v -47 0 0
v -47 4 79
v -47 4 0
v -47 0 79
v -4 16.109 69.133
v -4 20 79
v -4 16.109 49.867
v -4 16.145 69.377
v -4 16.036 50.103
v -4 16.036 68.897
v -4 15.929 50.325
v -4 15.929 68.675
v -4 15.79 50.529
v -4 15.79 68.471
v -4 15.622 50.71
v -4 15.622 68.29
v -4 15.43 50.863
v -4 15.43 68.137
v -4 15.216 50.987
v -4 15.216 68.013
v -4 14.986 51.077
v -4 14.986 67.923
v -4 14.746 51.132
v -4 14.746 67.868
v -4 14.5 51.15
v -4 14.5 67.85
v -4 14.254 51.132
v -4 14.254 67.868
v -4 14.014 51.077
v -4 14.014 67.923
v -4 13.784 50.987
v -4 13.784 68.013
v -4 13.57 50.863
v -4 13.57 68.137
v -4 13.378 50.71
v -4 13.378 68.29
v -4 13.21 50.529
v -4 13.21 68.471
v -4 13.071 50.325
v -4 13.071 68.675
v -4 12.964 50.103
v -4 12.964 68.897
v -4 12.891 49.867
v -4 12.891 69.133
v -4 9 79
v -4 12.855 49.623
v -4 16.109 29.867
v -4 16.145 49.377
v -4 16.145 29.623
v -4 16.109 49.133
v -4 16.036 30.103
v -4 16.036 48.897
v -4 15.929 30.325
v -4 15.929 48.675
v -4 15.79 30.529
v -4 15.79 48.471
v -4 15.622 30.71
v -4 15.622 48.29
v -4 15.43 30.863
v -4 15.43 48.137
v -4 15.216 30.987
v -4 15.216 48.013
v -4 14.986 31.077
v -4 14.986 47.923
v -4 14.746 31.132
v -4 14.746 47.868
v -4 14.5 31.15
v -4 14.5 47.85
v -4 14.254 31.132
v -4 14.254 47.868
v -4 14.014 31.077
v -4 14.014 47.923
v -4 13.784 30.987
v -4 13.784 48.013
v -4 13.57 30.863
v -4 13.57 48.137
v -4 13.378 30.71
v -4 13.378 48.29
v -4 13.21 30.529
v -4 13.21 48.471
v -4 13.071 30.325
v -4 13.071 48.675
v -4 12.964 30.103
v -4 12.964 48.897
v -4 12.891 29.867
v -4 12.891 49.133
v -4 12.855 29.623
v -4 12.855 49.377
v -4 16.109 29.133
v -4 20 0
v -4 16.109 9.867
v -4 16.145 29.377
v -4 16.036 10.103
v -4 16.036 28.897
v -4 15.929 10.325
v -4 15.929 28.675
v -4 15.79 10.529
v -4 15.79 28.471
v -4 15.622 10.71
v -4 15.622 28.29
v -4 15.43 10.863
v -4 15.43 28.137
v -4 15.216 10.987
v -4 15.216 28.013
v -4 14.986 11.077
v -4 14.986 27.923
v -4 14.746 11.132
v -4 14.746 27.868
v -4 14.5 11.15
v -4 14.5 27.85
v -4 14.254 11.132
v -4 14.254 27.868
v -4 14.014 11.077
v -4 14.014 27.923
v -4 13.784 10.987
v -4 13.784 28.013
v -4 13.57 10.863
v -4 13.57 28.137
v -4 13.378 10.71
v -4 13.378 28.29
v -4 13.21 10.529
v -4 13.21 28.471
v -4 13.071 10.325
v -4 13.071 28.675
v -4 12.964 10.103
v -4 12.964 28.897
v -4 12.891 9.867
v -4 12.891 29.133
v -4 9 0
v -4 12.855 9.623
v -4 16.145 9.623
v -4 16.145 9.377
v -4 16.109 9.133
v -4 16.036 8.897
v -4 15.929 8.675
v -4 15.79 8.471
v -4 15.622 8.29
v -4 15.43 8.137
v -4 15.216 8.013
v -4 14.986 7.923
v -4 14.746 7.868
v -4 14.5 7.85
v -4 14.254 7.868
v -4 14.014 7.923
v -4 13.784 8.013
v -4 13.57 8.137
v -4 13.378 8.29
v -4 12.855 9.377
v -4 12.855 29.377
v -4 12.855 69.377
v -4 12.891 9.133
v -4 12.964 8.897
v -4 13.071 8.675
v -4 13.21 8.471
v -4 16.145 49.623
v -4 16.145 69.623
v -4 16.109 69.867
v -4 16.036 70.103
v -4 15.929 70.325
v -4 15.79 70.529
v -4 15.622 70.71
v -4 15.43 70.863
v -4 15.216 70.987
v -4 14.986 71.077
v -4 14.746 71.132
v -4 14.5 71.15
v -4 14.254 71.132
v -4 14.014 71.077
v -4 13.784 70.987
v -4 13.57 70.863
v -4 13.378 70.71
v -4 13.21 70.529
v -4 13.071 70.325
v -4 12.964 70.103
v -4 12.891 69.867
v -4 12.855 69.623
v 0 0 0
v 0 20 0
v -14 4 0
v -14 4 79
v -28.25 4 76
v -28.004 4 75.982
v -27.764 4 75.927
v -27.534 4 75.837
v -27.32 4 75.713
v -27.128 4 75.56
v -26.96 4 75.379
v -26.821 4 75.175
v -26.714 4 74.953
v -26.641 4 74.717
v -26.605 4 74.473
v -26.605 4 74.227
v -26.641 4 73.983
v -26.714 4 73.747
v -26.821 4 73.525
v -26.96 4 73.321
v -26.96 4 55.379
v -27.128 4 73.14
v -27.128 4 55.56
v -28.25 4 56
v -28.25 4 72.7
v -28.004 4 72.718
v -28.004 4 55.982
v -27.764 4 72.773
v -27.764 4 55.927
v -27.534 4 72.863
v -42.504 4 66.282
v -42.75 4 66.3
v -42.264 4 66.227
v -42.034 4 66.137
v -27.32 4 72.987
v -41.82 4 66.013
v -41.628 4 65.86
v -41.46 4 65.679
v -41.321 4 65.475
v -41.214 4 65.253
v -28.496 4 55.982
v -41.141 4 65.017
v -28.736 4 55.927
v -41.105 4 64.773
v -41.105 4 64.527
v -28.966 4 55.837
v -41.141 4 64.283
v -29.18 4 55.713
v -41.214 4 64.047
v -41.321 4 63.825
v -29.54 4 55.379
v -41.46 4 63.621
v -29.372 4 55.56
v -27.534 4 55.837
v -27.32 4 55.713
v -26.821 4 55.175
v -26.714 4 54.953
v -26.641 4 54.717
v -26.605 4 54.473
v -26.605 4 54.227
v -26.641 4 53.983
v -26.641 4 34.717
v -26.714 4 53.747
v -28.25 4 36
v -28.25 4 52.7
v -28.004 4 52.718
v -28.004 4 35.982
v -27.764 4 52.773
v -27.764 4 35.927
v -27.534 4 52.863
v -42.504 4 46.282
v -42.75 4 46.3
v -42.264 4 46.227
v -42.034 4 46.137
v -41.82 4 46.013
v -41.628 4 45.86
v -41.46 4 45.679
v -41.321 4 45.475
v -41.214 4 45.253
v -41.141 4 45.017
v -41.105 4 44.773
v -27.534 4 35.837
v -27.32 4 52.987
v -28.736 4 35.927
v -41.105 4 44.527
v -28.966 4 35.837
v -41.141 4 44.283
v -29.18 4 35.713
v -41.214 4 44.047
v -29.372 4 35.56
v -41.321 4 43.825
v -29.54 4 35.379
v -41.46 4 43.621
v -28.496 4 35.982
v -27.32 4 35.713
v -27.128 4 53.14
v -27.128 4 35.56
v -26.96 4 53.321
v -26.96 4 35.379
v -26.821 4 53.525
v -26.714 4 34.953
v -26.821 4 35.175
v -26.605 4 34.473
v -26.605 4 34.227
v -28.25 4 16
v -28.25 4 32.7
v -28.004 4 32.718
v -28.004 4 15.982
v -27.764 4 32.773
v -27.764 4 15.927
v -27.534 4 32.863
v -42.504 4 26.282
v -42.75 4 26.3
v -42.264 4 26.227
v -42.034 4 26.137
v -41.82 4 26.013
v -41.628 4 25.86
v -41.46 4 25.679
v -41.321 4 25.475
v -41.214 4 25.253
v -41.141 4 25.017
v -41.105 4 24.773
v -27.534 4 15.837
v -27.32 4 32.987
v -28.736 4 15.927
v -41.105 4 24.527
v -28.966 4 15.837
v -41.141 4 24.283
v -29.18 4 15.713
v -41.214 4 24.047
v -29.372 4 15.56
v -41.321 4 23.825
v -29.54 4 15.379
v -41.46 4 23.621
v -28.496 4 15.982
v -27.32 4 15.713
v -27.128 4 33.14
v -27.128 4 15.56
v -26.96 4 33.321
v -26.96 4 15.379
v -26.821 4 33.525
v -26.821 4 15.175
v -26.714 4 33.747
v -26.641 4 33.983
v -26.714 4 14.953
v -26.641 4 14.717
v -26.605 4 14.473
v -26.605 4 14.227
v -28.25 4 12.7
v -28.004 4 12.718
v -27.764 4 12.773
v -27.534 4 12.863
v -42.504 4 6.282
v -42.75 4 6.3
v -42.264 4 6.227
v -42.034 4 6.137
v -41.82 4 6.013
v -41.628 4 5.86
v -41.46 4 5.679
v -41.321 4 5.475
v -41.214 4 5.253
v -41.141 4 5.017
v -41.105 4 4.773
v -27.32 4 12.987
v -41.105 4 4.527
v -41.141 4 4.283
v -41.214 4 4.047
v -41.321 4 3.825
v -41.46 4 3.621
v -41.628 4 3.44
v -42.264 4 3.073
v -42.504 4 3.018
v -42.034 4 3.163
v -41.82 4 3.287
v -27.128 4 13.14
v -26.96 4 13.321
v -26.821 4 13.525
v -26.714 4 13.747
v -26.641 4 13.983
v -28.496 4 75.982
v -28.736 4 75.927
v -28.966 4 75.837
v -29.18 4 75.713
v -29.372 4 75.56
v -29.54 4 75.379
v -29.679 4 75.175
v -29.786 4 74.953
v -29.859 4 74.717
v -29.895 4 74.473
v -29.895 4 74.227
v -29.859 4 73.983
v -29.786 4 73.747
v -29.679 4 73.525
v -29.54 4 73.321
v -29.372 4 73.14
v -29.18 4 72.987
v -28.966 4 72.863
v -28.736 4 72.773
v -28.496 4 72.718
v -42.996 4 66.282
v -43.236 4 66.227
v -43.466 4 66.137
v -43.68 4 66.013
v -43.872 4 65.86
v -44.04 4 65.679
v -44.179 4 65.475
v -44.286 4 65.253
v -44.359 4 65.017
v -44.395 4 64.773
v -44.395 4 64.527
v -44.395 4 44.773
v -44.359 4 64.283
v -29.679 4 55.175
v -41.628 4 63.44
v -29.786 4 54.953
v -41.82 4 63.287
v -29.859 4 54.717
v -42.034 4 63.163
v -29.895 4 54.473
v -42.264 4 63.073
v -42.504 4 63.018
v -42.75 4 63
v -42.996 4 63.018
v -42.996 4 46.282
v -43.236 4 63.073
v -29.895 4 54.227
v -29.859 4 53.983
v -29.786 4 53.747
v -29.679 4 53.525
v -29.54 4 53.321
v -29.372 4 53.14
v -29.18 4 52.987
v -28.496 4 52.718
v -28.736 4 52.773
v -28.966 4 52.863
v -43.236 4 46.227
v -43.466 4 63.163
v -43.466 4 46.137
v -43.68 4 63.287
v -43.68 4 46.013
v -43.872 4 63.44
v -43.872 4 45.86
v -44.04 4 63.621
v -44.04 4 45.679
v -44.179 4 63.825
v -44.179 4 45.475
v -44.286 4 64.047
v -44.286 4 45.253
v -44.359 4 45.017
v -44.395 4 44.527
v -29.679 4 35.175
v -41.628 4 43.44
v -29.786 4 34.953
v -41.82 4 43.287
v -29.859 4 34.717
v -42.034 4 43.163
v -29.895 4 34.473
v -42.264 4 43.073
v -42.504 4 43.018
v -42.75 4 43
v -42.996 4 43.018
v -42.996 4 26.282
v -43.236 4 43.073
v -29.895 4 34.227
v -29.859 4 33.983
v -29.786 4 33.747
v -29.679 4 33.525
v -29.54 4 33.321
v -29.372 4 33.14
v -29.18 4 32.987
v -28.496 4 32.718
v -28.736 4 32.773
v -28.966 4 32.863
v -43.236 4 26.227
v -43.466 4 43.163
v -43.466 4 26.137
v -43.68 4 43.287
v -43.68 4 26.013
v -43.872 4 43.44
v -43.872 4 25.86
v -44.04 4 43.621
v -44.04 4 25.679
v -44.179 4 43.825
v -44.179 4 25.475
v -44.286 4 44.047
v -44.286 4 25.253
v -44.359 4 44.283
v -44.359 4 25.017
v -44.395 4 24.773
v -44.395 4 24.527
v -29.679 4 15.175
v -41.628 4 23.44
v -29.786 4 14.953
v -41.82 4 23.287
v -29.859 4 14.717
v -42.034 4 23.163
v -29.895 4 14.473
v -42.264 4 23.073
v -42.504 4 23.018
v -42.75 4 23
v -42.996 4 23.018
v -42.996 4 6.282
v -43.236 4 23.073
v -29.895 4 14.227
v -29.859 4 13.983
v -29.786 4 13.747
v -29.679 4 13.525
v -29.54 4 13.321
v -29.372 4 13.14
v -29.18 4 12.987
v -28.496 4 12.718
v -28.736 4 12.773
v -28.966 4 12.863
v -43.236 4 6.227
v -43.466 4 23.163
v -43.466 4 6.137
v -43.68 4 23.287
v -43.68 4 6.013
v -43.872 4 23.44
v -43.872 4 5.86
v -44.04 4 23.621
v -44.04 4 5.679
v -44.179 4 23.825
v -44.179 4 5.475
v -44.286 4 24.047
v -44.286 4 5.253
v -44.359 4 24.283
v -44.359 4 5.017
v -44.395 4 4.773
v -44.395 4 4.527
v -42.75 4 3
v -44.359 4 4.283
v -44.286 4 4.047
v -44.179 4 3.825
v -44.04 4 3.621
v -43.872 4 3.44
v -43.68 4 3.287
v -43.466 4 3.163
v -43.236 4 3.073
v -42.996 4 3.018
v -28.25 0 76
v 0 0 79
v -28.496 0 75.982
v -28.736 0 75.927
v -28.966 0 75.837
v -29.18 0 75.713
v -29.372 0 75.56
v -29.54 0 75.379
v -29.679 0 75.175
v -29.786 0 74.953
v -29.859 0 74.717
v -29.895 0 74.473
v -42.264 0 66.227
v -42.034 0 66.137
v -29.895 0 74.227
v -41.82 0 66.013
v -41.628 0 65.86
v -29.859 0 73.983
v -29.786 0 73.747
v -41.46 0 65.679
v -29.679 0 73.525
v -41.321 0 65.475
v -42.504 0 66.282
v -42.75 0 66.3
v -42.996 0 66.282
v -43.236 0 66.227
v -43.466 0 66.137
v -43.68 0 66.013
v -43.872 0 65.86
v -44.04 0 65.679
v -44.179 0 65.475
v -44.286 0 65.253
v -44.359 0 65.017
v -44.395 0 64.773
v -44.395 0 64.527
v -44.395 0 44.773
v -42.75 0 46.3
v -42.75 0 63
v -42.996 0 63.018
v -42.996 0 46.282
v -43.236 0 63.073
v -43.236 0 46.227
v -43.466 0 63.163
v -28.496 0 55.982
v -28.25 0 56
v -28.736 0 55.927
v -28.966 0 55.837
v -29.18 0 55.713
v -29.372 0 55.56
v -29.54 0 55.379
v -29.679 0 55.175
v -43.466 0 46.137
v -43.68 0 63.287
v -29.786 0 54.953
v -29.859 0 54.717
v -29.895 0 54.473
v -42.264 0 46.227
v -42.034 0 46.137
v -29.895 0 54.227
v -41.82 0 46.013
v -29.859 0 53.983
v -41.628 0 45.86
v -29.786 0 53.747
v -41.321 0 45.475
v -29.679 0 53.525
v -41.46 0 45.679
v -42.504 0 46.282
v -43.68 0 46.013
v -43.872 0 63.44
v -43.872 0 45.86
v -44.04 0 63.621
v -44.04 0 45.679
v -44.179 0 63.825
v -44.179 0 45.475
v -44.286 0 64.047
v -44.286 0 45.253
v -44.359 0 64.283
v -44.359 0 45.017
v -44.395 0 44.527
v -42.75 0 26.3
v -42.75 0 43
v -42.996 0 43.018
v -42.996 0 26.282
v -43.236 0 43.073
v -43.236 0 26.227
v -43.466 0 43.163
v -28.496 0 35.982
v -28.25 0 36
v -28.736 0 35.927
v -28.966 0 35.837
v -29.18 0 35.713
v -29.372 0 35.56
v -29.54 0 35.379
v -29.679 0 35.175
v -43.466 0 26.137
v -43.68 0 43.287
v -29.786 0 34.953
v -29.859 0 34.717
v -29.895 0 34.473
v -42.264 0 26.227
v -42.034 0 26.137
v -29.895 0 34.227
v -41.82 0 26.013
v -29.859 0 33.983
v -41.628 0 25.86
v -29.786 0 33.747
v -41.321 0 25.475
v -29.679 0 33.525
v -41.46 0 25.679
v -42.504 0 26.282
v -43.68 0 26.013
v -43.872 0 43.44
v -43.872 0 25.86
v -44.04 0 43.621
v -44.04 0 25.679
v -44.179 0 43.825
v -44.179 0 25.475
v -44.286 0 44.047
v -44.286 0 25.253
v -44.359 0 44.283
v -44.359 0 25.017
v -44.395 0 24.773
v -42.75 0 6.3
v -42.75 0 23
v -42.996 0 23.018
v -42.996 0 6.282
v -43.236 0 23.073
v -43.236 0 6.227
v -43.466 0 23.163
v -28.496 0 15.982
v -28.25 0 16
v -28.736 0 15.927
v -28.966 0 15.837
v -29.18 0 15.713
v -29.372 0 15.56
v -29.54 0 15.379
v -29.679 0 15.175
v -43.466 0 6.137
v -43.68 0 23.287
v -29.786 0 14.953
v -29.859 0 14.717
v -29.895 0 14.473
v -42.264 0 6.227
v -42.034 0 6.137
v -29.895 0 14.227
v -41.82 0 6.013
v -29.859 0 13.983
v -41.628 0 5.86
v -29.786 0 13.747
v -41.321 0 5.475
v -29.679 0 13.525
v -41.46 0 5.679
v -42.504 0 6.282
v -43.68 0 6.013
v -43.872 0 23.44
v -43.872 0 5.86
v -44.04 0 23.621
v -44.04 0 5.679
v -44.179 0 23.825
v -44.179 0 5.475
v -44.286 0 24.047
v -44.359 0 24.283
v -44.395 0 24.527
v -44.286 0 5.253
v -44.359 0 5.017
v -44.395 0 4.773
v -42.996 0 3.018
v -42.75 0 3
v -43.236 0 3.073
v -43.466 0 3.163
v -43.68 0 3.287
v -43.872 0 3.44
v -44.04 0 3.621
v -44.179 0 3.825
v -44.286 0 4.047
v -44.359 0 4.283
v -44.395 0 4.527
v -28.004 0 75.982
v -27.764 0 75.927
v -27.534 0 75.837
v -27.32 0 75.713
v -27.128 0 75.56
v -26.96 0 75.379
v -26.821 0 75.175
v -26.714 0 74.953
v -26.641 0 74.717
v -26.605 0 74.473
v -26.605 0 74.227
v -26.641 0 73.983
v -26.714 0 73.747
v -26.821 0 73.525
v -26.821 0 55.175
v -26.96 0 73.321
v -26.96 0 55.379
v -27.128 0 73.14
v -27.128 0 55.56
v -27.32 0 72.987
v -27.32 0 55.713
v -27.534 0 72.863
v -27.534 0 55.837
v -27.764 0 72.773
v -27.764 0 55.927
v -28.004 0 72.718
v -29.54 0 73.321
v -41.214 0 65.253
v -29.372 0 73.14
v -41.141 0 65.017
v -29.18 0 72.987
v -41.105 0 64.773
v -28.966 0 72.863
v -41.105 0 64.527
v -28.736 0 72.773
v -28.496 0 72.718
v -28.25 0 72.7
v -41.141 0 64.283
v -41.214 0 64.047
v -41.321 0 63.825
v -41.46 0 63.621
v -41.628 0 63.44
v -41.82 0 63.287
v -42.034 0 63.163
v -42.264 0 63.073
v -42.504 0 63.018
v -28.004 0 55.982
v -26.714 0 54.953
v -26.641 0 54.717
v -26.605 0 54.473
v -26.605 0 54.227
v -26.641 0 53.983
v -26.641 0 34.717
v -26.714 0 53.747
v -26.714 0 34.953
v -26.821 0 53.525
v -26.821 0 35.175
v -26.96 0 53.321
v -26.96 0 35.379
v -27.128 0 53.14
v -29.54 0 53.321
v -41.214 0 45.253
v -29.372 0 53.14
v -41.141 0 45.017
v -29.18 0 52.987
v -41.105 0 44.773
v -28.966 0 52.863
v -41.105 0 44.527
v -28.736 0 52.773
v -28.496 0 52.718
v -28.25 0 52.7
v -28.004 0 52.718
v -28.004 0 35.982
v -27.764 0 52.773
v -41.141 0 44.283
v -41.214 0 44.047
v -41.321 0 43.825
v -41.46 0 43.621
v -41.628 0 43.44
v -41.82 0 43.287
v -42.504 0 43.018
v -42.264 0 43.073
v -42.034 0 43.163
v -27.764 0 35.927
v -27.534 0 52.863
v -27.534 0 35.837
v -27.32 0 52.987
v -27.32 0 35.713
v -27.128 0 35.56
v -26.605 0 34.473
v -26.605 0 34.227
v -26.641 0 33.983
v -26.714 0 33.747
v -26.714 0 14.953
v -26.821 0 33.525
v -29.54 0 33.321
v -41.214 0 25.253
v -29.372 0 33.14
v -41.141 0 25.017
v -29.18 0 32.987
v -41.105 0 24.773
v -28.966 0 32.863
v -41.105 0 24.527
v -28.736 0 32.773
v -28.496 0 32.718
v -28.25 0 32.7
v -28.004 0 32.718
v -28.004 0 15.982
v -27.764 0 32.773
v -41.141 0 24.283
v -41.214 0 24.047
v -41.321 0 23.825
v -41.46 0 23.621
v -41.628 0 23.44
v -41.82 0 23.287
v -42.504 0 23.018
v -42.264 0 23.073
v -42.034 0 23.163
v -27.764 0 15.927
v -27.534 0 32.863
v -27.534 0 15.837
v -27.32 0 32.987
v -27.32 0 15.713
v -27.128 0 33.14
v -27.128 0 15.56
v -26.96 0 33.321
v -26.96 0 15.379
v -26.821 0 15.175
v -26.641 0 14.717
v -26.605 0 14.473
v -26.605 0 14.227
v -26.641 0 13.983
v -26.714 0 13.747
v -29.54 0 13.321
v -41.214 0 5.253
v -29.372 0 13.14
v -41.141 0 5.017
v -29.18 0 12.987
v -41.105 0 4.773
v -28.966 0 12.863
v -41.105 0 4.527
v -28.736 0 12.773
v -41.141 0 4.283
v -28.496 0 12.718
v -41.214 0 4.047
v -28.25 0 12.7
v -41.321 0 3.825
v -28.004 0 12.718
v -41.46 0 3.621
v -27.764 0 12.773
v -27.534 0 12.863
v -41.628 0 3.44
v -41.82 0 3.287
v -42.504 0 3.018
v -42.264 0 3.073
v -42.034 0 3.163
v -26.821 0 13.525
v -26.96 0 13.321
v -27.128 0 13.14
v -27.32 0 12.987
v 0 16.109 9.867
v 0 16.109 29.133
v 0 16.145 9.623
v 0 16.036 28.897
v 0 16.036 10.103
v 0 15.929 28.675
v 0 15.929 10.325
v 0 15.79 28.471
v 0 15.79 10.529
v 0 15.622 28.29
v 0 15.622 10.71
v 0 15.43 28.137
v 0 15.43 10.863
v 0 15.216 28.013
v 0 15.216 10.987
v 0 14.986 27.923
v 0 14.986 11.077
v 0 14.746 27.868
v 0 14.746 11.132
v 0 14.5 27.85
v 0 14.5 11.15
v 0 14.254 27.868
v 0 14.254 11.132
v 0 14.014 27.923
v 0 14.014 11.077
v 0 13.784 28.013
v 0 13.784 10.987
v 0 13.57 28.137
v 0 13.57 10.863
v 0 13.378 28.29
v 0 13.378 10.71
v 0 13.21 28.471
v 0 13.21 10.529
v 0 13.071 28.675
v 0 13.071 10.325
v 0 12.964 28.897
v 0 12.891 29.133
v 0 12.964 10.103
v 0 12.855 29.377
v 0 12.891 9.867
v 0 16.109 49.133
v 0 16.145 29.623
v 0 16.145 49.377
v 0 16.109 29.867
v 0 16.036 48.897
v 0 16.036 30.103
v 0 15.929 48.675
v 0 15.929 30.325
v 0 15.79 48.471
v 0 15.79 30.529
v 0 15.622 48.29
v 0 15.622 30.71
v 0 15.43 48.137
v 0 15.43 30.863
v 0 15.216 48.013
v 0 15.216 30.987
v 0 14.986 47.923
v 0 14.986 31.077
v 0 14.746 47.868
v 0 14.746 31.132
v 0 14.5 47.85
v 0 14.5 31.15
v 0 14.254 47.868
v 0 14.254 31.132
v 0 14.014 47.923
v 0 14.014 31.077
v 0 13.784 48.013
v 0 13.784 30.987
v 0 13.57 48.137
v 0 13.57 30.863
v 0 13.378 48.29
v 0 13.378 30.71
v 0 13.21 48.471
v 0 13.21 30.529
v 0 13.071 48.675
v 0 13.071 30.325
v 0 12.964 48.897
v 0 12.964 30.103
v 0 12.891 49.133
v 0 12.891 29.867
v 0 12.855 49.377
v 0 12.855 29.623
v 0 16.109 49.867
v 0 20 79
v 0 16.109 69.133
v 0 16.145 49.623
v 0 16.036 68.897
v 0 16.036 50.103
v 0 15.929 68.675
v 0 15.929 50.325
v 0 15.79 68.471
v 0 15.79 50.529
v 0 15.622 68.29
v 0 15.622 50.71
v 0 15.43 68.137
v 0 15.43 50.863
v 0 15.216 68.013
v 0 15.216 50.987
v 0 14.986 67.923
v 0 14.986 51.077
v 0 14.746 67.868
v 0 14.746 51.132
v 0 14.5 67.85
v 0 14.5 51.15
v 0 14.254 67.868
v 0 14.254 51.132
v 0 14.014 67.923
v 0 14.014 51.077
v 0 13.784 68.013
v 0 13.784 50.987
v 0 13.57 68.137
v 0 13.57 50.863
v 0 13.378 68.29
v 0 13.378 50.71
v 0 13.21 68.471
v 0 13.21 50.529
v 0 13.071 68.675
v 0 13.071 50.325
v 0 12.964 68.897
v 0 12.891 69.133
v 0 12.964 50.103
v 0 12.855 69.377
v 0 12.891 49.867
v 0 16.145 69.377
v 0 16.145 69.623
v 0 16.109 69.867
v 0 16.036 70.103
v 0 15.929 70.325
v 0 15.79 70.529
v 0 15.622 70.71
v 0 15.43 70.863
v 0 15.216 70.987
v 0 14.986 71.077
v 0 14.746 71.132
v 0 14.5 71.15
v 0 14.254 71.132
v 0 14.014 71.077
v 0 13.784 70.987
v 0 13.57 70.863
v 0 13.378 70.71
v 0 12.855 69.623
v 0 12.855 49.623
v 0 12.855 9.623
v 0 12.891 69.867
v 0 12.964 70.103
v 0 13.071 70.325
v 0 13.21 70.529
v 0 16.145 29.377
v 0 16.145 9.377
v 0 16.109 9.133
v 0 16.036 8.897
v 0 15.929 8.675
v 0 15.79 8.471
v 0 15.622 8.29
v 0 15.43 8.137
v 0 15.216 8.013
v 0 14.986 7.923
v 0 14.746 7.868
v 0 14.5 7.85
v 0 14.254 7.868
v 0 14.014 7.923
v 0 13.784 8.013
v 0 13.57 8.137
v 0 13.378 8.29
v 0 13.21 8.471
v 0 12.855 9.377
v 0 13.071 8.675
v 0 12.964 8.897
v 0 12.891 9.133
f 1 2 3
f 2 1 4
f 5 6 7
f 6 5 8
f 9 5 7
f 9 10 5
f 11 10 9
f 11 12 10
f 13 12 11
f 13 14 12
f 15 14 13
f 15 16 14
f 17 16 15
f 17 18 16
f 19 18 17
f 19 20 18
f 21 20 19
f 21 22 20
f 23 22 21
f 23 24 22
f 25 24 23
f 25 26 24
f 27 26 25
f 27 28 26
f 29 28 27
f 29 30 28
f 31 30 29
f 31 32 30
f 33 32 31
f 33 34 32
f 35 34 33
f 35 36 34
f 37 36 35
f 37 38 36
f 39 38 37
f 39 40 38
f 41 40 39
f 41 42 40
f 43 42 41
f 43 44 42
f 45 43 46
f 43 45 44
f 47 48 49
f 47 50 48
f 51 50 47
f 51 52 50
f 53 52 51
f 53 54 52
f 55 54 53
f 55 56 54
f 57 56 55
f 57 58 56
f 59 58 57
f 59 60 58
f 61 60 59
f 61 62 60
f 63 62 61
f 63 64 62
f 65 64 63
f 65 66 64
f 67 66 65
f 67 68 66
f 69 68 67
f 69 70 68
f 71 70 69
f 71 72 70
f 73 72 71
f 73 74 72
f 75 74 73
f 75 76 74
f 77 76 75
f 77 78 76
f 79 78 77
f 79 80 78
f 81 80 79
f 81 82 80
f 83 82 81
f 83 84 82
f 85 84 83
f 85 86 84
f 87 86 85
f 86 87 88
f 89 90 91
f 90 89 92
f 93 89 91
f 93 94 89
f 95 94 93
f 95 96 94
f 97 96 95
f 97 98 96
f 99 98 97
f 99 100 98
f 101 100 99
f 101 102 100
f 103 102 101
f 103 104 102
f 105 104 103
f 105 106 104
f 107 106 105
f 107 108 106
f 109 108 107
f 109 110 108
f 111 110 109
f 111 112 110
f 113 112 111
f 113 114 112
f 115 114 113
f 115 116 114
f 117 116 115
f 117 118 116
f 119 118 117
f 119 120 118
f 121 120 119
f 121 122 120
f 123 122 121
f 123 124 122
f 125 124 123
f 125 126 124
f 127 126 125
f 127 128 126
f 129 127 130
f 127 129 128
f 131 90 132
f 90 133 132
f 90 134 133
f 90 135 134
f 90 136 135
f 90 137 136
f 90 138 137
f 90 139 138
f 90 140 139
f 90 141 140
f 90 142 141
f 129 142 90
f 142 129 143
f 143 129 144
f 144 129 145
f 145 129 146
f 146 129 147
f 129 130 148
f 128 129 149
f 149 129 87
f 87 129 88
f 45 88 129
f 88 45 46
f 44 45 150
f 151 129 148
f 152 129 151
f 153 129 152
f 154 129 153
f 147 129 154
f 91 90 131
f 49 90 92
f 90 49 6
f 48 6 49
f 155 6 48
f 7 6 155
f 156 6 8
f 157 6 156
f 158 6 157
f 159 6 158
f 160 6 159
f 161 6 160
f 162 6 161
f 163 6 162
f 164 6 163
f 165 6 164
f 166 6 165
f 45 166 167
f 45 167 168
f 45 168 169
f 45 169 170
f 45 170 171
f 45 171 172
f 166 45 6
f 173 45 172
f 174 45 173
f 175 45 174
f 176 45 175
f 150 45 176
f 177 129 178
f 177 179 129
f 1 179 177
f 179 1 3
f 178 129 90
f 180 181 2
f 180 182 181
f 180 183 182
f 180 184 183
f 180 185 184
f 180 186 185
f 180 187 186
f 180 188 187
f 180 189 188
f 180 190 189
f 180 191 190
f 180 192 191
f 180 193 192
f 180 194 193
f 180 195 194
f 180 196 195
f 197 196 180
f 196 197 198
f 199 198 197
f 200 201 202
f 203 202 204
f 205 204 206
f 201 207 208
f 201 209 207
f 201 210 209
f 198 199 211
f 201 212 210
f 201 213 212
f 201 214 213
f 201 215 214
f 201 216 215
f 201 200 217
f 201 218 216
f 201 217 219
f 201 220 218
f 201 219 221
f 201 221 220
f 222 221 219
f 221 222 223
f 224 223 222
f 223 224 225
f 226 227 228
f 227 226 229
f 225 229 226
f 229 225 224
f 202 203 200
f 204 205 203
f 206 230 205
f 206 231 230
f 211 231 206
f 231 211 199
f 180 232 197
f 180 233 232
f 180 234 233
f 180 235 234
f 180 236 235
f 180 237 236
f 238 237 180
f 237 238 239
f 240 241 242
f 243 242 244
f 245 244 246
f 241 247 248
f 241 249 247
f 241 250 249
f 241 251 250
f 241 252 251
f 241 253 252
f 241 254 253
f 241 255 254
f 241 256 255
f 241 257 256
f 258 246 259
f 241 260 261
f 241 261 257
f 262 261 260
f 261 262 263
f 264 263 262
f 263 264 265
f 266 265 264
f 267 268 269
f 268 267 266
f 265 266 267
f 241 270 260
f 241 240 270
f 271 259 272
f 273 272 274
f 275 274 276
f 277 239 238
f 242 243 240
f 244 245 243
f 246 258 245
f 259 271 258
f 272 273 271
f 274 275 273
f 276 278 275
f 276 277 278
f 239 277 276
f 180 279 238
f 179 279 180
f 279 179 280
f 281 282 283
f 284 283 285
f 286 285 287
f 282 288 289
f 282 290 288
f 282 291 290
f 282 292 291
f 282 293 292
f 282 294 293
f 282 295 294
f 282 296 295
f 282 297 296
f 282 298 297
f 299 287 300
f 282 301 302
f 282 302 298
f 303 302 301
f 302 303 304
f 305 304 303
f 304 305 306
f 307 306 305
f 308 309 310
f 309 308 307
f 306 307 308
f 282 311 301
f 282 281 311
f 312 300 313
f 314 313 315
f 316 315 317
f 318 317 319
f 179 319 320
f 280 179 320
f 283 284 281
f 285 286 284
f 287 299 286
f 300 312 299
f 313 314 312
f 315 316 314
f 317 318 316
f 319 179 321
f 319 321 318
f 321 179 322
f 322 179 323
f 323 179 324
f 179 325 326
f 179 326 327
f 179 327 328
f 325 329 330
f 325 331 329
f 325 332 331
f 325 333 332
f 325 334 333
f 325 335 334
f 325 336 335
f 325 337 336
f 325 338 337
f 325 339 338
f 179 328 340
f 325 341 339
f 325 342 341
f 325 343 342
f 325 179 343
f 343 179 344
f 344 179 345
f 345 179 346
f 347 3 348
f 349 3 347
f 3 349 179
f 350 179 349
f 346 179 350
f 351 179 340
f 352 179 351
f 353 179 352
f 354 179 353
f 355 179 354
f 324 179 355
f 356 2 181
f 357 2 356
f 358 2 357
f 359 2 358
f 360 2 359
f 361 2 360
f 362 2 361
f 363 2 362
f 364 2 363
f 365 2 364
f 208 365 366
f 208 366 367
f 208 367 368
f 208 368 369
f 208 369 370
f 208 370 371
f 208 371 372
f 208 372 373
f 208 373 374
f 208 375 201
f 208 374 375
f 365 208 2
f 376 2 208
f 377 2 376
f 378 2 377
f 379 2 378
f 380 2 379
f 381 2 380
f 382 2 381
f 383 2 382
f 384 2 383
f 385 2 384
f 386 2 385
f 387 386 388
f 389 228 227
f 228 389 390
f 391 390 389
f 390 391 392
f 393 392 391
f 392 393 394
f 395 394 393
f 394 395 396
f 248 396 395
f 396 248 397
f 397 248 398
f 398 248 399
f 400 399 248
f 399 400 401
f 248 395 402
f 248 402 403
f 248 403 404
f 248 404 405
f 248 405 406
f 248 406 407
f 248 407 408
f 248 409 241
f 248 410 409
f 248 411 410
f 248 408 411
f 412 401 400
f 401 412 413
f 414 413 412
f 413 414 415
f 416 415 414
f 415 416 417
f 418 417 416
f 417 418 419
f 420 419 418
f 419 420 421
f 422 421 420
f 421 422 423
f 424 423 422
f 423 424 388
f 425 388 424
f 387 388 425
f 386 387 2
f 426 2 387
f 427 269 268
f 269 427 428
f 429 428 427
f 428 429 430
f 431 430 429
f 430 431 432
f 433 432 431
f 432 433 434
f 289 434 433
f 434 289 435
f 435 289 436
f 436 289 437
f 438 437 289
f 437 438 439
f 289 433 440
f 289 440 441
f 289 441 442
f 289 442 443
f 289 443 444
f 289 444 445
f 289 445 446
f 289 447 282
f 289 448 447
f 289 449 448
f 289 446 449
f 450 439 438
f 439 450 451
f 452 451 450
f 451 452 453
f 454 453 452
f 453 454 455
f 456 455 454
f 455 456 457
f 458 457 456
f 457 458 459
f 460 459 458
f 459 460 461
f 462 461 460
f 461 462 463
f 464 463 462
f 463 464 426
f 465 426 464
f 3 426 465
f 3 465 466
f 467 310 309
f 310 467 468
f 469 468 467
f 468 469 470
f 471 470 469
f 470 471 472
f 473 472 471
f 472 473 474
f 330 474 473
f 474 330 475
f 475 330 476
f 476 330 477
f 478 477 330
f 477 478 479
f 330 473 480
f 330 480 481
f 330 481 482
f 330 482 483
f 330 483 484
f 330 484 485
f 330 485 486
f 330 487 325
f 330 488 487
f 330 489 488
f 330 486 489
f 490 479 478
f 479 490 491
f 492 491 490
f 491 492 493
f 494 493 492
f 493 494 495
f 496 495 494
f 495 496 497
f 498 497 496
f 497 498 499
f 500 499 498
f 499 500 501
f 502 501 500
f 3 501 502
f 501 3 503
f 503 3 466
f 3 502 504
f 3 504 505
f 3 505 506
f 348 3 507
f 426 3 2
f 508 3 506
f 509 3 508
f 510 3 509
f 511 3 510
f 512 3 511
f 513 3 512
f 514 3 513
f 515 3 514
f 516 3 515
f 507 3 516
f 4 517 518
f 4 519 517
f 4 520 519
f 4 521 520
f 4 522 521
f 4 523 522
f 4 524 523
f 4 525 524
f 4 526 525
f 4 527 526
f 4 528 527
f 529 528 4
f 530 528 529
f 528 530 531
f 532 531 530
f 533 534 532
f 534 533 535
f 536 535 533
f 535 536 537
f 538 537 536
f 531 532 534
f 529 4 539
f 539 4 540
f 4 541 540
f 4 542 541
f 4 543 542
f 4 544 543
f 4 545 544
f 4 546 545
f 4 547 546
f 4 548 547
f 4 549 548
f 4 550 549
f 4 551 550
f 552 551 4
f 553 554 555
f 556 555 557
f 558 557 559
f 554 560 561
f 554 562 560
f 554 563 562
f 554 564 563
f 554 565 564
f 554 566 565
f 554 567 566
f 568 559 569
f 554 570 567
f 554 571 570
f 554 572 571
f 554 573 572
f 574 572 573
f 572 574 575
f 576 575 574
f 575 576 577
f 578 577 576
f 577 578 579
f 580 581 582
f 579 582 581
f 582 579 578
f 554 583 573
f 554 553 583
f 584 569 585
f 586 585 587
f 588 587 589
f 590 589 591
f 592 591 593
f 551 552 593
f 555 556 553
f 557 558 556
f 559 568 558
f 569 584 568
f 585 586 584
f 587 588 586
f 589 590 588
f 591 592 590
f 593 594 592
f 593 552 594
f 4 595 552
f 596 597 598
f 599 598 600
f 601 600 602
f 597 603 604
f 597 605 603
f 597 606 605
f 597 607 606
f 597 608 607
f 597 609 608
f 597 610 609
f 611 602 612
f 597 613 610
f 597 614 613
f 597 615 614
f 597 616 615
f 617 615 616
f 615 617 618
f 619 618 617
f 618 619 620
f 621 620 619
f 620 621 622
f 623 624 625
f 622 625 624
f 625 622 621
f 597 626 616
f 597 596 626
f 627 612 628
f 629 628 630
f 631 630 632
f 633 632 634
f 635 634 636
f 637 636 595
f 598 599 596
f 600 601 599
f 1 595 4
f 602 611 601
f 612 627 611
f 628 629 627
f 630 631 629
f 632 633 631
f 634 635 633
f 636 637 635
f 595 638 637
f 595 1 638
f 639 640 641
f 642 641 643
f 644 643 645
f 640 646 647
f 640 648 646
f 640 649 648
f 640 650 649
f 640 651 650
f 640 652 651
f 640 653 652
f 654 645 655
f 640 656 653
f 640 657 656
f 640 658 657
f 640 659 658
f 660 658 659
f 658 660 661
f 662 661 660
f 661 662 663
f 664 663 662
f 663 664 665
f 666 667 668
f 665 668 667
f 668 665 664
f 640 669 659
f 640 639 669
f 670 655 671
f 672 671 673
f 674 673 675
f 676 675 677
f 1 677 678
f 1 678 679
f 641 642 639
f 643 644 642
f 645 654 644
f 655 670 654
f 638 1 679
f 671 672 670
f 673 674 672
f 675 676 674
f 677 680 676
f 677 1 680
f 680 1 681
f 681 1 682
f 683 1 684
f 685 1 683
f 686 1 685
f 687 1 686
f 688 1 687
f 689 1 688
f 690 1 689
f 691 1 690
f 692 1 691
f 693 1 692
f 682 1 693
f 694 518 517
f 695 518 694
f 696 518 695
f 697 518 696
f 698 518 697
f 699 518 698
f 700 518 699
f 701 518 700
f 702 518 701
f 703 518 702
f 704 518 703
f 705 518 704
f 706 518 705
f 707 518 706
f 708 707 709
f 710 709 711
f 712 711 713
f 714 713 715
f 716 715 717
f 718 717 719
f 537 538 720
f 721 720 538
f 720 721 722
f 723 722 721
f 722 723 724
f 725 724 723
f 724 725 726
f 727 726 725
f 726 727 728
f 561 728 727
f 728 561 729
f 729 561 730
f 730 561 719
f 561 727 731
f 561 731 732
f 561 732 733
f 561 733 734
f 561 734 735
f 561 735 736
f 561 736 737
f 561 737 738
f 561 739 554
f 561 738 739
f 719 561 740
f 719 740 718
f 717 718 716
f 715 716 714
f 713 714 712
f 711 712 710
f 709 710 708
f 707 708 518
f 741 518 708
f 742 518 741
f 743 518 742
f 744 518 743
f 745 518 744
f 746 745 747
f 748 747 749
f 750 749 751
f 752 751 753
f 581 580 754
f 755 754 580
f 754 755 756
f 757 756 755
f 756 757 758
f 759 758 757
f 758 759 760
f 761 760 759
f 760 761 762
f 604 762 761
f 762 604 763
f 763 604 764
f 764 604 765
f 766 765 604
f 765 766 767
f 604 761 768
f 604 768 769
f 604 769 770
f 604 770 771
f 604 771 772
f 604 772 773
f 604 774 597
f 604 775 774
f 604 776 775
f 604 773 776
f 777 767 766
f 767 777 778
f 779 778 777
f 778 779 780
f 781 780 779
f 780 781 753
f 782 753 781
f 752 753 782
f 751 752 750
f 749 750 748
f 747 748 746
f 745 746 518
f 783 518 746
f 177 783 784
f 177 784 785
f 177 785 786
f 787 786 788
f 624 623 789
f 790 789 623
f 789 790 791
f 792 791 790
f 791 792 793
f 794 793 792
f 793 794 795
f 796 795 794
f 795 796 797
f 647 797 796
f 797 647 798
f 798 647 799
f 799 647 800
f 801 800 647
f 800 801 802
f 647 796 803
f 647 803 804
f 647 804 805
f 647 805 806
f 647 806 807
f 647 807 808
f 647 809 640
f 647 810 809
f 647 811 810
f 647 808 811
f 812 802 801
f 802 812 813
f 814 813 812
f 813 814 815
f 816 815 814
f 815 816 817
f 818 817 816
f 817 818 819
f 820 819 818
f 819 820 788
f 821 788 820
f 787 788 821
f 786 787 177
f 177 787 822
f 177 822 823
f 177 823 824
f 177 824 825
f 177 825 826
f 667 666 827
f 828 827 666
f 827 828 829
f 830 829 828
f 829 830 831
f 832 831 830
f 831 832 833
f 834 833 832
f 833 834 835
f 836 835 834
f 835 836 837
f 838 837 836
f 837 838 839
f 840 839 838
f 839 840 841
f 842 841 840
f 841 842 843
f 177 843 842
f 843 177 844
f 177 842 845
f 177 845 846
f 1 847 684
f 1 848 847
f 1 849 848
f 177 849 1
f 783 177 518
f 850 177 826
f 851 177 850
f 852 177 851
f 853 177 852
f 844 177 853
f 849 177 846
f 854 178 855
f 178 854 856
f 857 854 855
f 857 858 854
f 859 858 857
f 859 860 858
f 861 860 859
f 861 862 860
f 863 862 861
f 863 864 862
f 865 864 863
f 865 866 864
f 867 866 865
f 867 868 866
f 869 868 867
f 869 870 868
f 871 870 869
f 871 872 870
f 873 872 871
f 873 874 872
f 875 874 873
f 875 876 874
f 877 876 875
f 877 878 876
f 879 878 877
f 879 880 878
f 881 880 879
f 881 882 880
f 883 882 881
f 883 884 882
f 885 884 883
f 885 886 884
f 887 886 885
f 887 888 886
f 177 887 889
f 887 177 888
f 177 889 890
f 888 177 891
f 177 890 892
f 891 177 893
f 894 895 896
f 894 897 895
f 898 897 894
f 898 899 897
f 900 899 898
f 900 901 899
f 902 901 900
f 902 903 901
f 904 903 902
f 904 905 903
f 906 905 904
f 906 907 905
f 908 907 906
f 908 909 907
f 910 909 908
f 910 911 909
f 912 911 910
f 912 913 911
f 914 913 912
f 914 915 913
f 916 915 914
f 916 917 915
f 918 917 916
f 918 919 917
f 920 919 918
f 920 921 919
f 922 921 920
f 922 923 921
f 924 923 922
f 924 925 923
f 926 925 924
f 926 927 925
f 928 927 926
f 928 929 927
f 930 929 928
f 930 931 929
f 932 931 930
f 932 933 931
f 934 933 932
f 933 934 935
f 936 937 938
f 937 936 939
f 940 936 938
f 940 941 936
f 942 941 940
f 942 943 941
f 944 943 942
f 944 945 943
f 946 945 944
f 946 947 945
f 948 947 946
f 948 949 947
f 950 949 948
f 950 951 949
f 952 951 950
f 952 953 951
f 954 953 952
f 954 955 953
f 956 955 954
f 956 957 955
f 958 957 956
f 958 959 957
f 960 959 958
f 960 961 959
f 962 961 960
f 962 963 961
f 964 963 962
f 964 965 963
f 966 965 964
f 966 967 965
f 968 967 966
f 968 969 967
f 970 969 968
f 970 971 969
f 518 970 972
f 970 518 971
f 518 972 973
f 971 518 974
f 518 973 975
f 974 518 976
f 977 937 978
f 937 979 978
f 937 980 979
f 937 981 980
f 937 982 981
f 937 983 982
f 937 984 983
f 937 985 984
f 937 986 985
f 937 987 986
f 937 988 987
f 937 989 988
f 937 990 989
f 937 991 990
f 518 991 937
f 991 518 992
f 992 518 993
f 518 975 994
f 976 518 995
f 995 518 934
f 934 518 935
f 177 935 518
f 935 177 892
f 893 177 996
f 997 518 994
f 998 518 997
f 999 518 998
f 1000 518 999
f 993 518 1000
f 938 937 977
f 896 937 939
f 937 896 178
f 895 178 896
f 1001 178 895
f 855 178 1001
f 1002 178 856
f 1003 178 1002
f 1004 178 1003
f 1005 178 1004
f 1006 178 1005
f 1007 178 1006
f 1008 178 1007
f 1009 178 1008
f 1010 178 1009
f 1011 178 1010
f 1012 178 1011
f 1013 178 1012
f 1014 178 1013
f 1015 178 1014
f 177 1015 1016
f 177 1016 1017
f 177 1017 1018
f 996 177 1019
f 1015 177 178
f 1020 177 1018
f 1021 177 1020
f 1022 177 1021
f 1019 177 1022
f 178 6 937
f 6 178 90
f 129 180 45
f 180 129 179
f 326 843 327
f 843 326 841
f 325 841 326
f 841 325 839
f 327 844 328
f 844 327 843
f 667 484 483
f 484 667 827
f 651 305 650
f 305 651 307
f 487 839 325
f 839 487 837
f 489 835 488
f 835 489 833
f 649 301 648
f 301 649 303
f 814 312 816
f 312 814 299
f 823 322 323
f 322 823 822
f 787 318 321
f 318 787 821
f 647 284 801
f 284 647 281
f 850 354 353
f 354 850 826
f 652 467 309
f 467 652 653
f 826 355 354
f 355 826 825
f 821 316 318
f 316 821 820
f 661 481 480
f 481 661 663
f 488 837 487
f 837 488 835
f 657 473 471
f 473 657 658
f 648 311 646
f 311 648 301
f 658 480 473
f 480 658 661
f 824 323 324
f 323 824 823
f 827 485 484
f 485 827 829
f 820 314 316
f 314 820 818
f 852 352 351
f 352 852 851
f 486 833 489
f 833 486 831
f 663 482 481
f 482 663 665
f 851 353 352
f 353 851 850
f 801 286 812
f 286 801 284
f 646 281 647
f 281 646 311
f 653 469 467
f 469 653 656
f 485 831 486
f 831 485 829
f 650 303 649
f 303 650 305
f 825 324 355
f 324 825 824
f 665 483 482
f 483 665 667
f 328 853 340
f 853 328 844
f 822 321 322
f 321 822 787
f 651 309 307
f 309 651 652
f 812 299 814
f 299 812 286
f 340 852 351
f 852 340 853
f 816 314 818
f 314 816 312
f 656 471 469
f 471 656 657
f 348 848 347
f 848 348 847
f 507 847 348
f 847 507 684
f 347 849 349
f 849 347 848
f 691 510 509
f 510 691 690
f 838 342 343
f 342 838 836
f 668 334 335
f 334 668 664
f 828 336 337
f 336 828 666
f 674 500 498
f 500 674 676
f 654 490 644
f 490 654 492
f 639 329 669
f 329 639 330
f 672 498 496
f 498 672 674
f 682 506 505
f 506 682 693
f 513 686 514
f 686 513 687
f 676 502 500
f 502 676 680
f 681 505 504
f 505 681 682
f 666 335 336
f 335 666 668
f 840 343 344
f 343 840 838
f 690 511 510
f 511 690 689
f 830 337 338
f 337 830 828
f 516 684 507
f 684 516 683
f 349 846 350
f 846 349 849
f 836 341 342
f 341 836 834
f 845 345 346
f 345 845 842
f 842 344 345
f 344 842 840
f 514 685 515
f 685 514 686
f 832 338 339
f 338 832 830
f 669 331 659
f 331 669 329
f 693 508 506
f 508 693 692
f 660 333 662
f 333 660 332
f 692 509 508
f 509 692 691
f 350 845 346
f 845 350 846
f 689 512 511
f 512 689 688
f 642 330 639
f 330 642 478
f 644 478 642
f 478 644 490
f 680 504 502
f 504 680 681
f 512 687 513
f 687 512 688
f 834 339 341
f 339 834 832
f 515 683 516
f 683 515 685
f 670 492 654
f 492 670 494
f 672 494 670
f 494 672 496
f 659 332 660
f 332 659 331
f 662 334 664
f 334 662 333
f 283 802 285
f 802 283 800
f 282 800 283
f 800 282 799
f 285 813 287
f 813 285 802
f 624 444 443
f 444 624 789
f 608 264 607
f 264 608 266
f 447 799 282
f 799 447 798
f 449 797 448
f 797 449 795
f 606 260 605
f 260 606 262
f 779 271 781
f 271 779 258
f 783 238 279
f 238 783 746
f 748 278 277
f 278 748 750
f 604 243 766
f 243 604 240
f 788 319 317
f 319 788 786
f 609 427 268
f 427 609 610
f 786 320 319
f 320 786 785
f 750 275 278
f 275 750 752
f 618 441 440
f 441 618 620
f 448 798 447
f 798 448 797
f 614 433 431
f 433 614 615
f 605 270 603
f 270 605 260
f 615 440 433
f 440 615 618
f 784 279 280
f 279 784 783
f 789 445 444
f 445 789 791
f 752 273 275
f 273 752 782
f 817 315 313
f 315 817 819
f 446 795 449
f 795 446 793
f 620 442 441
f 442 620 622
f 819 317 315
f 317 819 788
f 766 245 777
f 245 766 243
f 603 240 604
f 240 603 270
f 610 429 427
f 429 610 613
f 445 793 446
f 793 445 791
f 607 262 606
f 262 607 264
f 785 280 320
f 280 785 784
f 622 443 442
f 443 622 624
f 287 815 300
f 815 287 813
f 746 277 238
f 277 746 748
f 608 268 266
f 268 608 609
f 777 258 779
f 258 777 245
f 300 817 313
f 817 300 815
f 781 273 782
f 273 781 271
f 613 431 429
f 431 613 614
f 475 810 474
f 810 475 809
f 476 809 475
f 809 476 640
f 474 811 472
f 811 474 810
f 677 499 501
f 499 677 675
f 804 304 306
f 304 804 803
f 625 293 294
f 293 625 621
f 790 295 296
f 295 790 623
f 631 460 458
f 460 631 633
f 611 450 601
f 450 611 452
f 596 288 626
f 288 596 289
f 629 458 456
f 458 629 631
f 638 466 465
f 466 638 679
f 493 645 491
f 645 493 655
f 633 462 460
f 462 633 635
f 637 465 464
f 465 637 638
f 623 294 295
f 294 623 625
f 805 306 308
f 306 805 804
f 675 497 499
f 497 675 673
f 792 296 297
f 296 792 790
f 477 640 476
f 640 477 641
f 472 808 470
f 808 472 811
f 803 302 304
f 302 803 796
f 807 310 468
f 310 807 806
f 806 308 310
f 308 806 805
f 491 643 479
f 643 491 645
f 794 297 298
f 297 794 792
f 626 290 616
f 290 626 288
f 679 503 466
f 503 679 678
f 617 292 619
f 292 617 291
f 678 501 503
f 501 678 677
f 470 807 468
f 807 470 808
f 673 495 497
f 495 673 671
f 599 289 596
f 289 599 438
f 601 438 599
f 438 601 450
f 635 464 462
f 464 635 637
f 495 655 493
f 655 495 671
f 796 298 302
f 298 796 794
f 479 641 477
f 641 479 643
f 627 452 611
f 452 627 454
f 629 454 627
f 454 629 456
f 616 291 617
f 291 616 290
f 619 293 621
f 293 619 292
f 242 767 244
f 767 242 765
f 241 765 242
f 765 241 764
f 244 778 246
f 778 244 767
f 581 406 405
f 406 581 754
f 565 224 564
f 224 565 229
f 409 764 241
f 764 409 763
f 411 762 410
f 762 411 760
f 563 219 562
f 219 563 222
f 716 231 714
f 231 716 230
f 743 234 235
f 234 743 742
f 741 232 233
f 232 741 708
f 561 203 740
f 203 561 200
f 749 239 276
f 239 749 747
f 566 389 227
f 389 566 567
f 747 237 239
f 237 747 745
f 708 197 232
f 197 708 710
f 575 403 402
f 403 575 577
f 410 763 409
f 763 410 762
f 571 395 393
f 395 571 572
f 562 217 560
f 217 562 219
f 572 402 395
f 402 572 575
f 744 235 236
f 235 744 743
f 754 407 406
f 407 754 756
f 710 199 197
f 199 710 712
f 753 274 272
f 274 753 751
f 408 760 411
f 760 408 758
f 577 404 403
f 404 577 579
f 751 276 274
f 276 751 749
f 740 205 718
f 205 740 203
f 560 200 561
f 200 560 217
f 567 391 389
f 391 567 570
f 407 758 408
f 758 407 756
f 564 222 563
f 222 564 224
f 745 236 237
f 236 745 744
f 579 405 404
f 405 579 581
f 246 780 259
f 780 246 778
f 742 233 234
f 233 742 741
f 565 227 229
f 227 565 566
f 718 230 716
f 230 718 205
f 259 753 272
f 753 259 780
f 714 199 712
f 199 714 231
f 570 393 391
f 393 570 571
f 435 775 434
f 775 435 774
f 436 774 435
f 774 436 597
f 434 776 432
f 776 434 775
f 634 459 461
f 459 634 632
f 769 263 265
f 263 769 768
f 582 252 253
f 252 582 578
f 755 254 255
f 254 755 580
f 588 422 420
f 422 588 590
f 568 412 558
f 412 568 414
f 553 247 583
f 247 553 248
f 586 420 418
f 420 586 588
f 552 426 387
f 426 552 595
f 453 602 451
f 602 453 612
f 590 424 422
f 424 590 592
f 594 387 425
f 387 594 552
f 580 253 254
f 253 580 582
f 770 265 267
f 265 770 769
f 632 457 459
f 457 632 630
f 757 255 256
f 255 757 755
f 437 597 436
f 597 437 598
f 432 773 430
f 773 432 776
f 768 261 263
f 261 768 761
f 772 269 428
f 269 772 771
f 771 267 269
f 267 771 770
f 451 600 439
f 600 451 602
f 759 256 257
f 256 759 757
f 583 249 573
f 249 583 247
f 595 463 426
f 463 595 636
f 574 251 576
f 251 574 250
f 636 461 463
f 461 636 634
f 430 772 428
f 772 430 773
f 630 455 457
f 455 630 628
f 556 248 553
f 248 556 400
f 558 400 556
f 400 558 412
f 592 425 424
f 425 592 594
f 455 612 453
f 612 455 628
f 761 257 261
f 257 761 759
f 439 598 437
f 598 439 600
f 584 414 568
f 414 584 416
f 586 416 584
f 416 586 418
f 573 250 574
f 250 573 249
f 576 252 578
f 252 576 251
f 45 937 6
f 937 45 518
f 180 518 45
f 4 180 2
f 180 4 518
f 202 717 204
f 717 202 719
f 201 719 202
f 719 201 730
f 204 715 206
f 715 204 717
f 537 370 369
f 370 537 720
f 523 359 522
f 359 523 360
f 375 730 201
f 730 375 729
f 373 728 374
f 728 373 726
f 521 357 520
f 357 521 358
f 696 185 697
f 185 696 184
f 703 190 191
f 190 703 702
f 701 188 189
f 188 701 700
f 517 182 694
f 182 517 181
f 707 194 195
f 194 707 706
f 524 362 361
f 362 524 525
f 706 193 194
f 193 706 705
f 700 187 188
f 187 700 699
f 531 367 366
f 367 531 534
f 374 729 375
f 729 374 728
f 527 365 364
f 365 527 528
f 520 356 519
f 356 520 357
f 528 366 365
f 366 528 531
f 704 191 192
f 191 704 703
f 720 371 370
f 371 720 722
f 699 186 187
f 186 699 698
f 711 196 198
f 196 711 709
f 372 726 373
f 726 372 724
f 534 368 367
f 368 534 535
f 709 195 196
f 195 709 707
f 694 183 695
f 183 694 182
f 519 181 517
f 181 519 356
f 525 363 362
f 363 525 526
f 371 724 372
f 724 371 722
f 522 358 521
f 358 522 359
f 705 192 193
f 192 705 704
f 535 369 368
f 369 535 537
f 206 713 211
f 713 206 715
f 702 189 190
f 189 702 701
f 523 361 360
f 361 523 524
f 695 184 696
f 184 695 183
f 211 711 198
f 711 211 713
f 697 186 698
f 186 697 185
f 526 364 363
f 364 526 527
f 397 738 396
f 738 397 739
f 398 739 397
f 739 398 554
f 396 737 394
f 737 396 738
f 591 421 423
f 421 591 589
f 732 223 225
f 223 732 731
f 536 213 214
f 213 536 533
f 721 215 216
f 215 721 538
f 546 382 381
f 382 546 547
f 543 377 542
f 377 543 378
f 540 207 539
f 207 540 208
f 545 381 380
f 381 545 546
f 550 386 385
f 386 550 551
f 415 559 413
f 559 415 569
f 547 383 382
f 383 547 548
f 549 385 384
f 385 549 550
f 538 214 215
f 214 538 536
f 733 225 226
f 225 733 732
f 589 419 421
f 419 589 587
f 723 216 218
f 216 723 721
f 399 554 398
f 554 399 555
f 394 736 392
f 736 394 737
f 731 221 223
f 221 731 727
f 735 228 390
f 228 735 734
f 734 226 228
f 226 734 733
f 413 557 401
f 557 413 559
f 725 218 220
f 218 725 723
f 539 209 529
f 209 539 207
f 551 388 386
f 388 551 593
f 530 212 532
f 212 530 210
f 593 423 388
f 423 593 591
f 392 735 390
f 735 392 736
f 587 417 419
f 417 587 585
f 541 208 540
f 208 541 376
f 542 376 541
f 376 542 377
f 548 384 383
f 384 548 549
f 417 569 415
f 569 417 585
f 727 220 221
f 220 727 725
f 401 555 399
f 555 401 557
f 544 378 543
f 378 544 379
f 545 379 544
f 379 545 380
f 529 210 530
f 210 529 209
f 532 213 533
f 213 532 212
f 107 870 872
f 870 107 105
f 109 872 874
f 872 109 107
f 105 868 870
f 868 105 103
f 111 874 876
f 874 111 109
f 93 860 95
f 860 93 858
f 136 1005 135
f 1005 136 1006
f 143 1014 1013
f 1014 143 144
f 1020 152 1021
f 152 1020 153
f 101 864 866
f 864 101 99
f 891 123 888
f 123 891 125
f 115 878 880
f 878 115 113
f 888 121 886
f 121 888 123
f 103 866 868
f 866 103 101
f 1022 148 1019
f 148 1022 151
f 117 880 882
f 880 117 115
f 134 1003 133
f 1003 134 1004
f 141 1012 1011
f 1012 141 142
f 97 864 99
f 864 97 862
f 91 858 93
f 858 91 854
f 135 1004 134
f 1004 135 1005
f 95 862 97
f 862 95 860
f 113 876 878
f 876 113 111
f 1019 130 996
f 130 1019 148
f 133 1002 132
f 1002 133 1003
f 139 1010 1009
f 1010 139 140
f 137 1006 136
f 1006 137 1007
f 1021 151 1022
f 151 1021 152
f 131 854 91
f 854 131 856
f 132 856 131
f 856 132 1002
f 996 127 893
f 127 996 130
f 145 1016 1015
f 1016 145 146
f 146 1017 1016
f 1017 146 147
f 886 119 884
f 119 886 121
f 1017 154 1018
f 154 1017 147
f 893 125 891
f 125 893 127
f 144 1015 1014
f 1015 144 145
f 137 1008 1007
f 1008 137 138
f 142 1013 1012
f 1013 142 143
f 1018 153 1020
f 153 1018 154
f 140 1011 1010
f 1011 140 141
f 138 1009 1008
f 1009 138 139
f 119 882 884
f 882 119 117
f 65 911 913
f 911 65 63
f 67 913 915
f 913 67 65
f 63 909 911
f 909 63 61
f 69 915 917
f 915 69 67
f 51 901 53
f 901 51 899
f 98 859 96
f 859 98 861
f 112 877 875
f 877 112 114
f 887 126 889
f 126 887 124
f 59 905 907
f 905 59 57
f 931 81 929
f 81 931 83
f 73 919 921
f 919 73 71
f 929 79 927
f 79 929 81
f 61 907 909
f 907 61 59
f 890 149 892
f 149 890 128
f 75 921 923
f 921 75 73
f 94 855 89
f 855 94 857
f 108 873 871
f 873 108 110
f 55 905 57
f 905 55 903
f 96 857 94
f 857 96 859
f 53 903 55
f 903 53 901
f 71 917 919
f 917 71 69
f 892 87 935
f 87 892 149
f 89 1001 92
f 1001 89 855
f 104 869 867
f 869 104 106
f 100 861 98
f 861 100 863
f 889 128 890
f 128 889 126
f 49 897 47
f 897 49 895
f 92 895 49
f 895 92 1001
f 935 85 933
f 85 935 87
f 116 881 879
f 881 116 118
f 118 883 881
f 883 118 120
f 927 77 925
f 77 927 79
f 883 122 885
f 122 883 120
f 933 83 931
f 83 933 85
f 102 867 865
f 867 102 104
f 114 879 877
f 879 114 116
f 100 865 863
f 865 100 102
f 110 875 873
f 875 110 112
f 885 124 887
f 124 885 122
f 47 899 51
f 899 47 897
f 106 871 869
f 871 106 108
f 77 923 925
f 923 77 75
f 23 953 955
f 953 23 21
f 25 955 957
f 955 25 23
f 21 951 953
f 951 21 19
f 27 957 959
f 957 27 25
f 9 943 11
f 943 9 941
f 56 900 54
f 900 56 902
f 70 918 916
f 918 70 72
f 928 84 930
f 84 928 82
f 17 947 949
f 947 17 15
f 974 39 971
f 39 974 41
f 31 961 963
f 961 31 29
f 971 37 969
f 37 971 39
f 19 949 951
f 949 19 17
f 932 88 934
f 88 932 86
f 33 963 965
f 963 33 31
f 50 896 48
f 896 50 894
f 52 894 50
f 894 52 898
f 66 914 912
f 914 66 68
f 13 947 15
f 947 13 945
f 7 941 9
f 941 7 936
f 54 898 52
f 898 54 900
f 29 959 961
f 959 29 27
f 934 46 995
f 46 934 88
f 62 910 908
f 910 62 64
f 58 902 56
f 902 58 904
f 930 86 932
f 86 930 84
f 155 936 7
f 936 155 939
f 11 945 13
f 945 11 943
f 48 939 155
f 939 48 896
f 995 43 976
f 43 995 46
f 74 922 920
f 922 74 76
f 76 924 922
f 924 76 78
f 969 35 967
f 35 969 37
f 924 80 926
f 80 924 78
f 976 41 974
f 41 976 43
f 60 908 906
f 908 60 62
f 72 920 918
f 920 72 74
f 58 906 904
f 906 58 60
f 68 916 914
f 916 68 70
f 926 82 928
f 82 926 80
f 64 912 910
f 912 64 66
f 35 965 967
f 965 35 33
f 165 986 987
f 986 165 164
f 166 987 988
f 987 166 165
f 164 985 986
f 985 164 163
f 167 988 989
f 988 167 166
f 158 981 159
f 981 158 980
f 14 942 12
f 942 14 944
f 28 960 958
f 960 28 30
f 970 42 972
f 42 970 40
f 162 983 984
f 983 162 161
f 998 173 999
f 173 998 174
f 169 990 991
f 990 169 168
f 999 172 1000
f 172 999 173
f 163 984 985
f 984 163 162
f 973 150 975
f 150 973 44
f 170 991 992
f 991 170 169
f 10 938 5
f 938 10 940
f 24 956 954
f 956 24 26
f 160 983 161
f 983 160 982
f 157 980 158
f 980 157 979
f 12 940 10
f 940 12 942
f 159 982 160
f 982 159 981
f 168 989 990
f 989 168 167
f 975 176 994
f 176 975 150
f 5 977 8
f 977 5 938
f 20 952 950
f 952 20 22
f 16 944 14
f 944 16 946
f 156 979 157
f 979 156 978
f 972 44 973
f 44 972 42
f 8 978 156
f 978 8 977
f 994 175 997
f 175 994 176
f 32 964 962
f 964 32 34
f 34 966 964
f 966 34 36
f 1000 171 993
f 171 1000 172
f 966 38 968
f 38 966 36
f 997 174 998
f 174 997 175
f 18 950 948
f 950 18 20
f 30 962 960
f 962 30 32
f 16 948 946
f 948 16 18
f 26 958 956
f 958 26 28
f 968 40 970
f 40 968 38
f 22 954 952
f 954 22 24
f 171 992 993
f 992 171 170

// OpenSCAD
width = 19;
height = 25;
hole_dia = 3.3;

hole_off_x = 9.7;
hole_off_y = 14.5;

dist = 1;
wall = 4;
base_depth = 20;
support_l = 5;
add_height = 2;
ground_height = support_l + 15 - add_height;

valve_count = 4;

$fn = 42;

w = width;
h = height + ground_height;
l_all = valve_count * w + (valve_count - 1) * dist;

module prism(l, w, h) {
    polyhedron(
        points = [[0,0,0], [l,0,0], [l,w,0], [0,w,0], [0,w,h], [l,w,h]],
        faces = [[0,1,2,3],[5,4,3,2],[0,4,5,1],[0,3,4],[5,2,1]]
    );
}

module section(l) {
    translate([0, 0, wall])
    cube([l, wall, h]);
    
    cube([l, base_depth, wall]);
    
    translate([l, wall + support_l, wall])
    rotate([0, 0, 180])
    prism(l, support_l, support_l * 2);
}

module holes() {
    translate([-hole_off_x / 2, 0, -hole_off_y / 2])
    rotate([-90, 0, 0])
    cylinder(d = hole_dia, h = wall + 2);

    translate([hole_off_x / 2, 0, hole_off_y / 2])
    rotate([-90, 0, 0])
    cylinder(d = hole_dia, h = wall + 2);
}

module valve() {
    difference() {
        translate([0, 0, -wall])
        section(w);
        
        translate([w / 2, -1, ground_height + (add_height + height) / 2]) {
            //holes();
            
            scale([-1, 1, 1])
            holes();
        }
    }
}

module all_valves() {
    difference() {
        translate([0, 0, wall])
        for (i = [0 : valve_count - 1]) {
            if (i == 0) {
                translate([i * w, 0, 0])
                valve();
            } else {
                translate([i * w + (i - 1) * dist, 0, -wall])
                section(dist);
                
                translate([i * w + (i - 1) * dist + dist, 0, 0])
                valve();
            }
        }
        
        for (i = [0 : valve_count - 1]) {
            translate([i * w + (i - 1) * dist + dist + w / 2, wall + support_l + (base_depth - wall - support_l) / 2, -1])
            cylinder(d = hole_dia, h = wall + 2);
        }
    }
}

rotate([0, -90, 0])
all_valves();
